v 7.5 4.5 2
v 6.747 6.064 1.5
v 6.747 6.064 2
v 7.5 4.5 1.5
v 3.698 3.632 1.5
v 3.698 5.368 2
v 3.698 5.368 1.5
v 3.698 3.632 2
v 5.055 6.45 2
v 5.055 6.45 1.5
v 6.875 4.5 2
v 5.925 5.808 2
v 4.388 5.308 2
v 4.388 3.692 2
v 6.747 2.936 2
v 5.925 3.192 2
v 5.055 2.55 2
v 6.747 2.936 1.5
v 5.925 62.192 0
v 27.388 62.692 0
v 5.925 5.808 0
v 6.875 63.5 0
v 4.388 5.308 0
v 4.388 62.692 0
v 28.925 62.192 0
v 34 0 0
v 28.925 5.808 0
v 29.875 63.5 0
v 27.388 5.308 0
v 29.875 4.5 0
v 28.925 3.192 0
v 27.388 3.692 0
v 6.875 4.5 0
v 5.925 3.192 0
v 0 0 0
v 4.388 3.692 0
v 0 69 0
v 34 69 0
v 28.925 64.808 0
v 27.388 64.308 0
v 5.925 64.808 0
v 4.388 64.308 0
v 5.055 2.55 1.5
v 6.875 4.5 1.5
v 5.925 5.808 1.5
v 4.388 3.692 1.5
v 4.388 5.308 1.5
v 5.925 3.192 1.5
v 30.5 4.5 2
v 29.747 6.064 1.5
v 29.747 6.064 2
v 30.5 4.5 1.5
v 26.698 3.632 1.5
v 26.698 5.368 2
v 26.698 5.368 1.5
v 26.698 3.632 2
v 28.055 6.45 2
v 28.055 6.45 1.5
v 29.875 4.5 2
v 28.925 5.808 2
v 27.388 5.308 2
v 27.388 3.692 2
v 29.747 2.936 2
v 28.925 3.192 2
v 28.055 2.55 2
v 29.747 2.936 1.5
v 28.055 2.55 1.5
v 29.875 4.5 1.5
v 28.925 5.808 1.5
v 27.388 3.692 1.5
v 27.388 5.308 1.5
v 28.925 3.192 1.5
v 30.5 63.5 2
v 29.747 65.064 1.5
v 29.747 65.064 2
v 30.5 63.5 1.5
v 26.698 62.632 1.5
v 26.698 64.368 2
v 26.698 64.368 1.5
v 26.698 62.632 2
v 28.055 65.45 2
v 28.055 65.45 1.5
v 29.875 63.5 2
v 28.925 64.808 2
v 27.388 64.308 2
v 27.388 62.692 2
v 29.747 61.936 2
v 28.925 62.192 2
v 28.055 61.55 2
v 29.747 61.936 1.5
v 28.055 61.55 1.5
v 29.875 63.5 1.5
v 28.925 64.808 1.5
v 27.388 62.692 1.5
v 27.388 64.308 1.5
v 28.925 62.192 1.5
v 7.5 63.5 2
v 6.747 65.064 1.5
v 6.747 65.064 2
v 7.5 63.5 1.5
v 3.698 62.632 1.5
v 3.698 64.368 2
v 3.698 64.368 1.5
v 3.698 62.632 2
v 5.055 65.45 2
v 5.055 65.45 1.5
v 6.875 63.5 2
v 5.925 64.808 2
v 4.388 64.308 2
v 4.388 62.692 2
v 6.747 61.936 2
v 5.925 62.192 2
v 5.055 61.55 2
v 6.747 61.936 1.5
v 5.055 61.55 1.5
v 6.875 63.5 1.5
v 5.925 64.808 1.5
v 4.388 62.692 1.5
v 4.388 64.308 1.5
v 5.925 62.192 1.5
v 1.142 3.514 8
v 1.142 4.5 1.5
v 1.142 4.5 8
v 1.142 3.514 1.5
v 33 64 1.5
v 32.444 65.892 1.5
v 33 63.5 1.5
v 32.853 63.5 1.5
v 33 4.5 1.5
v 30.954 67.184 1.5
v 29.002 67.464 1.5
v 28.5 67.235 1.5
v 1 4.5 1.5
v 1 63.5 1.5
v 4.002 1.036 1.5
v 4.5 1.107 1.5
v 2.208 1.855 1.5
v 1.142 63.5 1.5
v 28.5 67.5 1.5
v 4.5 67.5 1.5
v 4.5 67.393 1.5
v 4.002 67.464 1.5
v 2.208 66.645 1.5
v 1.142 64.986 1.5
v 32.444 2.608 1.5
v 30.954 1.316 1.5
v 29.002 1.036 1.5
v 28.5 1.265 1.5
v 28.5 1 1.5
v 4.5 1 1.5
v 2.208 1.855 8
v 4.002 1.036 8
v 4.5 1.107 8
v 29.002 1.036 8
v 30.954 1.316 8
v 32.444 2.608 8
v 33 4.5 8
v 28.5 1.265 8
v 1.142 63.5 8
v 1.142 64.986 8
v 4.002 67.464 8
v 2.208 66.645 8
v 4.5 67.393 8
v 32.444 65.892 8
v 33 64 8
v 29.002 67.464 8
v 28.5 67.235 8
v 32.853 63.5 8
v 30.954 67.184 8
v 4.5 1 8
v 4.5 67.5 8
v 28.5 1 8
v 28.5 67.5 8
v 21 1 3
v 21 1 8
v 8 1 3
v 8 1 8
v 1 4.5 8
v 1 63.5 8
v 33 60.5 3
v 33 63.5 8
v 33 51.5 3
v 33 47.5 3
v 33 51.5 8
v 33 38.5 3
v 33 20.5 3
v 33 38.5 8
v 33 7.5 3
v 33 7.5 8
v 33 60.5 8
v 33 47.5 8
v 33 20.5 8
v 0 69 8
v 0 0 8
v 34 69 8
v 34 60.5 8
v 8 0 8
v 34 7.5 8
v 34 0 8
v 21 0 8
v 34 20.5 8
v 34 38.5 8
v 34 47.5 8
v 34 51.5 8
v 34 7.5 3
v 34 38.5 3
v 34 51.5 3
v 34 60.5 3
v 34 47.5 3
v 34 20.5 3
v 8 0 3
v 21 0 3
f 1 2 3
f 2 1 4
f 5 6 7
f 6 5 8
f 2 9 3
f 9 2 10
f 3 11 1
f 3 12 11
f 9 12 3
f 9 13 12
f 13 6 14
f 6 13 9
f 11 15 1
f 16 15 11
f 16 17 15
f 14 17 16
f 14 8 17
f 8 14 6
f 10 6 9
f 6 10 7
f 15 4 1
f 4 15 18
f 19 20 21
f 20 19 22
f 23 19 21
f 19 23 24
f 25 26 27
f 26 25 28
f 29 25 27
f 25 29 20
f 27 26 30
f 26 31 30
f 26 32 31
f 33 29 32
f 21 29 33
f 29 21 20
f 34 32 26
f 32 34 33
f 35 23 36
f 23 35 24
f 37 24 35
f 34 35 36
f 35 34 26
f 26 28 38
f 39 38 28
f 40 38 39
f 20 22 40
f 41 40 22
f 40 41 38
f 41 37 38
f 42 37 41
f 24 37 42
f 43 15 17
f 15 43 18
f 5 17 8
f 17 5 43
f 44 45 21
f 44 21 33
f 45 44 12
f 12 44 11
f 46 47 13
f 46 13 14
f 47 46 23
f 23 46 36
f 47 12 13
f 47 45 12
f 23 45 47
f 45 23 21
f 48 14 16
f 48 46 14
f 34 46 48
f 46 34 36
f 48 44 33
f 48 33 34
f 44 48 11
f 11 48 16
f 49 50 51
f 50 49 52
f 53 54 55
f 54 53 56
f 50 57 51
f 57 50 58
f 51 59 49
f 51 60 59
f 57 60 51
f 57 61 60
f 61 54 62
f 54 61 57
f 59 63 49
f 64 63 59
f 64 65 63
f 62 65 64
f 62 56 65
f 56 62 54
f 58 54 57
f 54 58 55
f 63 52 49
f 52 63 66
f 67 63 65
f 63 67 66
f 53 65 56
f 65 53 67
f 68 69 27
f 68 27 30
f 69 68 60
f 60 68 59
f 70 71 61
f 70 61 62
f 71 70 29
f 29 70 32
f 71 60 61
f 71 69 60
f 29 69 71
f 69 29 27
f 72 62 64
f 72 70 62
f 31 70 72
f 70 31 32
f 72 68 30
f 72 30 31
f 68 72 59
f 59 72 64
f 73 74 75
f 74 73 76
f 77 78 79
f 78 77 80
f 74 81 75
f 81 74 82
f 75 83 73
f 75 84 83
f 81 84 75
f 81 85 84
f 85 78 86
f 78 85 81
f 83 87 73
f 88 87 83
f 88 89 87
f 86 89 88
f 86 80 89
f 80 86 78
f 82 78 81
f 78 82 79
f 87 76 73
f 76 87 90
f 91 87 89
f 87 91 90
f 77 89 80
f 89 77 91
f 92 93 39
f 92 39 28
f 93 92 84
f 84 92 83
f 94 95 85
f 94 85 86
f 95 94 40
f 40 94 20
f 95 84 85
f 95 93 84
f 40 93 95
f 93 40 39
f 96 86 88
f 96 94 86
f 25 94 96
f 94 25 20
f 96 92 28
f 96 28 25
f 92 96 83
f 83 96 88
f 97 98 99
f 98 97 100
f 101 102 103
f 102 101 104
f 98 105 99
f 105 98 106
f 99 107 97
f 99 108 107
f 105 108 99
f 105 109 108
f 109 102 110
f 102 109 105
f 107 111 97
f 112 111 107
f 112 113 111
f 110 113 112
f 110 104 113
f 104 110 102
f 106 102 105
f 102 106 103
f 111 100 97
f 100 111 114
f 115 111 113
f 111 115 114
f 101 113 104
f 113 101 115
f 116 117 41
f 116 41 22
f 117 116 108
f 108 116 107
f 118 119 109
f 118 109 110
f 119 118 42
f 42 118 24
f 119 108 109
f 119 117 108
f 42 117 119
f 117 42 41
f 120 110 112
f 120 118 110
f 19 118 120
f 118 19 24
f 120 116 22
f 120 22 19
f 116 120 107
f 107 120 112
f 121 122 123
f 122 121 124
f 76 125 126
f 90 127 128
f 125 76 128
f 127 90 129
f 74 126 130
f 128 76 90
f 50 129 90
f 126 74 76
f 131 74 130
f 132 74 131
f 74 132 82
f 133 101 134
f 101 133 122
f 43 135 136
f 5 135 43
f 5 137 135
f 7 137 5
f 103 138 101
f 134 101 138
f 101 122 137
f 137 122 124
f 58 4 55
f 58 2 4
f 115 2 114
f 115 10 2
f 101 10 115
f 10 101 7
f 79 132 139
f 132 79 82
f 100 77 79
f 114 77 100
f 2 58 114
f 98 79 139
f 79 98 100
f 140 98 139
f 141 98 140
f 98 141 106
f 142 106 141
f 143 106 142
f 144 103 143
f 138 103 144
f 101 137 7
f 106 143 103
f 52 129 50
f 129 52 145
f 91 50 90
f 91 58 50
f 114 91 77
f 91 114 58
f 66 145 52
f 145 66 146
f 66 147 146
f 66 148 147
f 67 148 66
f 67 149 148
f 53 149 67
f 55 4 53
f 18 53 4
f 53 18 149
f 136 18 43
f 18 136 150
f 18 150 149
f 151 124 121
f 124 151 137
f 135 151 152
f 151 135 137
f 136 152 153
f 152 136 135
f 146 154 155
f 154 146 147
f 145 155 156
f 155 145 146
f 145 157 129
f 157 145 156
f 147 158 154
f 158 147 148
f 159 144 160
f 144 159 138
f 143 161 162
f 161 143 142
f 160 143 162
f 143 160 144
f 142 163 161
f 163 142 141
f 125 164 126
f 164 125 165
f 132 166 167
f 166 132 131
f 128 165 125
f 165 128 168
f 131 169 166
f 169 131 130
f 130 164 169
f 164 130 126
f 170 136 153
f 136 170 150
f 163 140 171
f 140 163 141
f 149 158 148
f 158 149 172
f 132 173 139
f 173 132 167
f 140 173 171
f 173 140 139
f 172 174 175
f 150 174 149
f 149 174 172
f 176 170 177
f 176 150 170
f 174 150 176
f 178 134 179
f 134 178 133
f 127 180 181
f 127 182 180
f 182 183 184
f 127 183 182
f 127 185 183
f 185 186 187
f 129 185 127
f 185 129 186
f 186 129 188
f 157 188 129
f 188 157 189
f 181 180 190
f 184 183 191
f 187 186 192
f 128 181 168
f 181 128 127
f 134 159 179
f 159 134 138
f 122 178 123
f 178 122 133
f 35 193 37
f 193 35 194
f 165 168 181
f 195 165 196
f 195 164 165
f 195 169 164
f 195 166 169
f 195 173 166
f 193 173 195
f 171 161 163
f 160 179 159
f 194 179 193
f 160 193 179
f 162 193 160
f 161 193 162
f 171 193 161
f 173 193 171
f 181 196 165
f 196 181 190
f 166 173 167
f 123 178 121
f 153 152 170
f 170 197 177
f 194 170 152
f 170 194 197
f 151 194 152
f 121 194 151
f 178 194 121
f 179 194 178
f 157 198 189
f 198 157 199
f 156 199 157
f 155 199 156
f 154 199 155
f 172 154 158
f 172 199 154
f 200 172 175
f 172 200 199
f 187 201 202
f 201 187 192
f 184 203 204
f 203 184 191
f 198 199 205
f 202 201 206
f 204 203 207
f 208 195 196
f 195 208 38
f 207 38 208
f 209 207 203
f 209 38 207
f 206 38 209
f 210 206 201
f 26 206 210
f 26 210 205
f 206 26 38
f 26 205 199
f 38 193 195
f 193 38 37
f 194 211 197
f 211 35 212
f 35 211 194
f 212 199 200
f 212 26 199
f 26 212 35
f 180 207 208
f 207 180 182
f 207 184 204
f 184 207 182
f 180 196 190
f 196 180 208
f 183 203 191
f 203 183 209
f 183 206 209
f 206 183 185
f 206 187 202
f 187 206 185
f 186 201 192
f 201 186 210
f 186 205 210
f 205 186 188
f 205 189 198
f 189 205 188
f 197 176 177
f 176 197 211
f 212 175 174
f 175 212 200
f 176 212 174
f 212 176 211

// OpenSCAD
cornerRad = 3.5;
baseThickness = 2;
usbWidth = 9;
powerCenter = 55;
usbCenter = 42;
// Printed with green PLA at 210C 1.03 x 1.025 x 1.025 scaling
hdmiCenter = 13;
hdmiWidth = 13;
sdWidth = 13;
sdCenter = 17;
slotHeight = 3;
height = 8;
union() {
    difference() {
        translate([5.5,4.5,0]) cylinder(2,2,2); // Lower left
        translate([5.5,4.5,0]) screwhole();
    }
    difference() {
        translate([28.5,4.5,0]) cylinder(2,2,2); // Lower right
        translate([28.5,4.5,0]) screwhole(); // Lower right
    }
    difference() {
        translate([28.5,63.5,0]) cylinder(2,2,2); // Upper right
        translate([28.5,63.5,0]) screwhole(); // Upper right
    }
    difference() {
        translate([5.5,63.5,0]) cylinder(2,2,2); // Upper left    
        translate([5.5,63.5,0]) screwhole(); // Upper left
    }
    difference() {
        difference() {
            cube([34,69,height]);
            translate([1,1,1.5]) rpiOutline(height);
        }
        translate([5.5,4.5,0]) screwhole(); // Lower left
        translate([28.5,4.5,0]) screwhole(); // Lower right
        translate([28.5,63.5,0]) screwhole(); // Upper right
        translate([5.5,63.5,0]) screwhole(); // Upper left
        translate([0,1,0]) {
            translate([30,powerCenter-(usbWidth/2),slotHeight]) cube([4,usbWidth,height]);
            translate([30,usbCenter-(usbWidth/2),slotHeight]) cube([4,usbWidth,height]);
            translate([30,hdmiCenter-(hdmiWidth/2),slotHeight]) cube([4,hdmiWidth,height]);    
        }
        translate([1,0,0]) {
            translate([7,0,slotHeight]) cube([sdWidth,2,height]); // SD Slot
        }
    }
    
}

module rpiOutline(thick) {
    union() {
        translate([3.5,3.5,0]) corner(thick); // Lower Left
        translate([28.5,3.5,0]) corner(thick); // Lower Right
        translate([3.5,63,0]) corner(thick); //Upper Left
        translate([28.5,63,0]) corner(thick); // Upper Right
        translate([3.5,0,0]) cube([24,66.5,thick]); // Top and Bottom
        translate([0,3.5,0]) cube([32,59,thick]); // Sides
    }
}

module screwhole () {
        cylinder(4,1.375,1.375);
}
module corner (thick) {
    cylinder(thick,cornerRad,cornerRad);
}
